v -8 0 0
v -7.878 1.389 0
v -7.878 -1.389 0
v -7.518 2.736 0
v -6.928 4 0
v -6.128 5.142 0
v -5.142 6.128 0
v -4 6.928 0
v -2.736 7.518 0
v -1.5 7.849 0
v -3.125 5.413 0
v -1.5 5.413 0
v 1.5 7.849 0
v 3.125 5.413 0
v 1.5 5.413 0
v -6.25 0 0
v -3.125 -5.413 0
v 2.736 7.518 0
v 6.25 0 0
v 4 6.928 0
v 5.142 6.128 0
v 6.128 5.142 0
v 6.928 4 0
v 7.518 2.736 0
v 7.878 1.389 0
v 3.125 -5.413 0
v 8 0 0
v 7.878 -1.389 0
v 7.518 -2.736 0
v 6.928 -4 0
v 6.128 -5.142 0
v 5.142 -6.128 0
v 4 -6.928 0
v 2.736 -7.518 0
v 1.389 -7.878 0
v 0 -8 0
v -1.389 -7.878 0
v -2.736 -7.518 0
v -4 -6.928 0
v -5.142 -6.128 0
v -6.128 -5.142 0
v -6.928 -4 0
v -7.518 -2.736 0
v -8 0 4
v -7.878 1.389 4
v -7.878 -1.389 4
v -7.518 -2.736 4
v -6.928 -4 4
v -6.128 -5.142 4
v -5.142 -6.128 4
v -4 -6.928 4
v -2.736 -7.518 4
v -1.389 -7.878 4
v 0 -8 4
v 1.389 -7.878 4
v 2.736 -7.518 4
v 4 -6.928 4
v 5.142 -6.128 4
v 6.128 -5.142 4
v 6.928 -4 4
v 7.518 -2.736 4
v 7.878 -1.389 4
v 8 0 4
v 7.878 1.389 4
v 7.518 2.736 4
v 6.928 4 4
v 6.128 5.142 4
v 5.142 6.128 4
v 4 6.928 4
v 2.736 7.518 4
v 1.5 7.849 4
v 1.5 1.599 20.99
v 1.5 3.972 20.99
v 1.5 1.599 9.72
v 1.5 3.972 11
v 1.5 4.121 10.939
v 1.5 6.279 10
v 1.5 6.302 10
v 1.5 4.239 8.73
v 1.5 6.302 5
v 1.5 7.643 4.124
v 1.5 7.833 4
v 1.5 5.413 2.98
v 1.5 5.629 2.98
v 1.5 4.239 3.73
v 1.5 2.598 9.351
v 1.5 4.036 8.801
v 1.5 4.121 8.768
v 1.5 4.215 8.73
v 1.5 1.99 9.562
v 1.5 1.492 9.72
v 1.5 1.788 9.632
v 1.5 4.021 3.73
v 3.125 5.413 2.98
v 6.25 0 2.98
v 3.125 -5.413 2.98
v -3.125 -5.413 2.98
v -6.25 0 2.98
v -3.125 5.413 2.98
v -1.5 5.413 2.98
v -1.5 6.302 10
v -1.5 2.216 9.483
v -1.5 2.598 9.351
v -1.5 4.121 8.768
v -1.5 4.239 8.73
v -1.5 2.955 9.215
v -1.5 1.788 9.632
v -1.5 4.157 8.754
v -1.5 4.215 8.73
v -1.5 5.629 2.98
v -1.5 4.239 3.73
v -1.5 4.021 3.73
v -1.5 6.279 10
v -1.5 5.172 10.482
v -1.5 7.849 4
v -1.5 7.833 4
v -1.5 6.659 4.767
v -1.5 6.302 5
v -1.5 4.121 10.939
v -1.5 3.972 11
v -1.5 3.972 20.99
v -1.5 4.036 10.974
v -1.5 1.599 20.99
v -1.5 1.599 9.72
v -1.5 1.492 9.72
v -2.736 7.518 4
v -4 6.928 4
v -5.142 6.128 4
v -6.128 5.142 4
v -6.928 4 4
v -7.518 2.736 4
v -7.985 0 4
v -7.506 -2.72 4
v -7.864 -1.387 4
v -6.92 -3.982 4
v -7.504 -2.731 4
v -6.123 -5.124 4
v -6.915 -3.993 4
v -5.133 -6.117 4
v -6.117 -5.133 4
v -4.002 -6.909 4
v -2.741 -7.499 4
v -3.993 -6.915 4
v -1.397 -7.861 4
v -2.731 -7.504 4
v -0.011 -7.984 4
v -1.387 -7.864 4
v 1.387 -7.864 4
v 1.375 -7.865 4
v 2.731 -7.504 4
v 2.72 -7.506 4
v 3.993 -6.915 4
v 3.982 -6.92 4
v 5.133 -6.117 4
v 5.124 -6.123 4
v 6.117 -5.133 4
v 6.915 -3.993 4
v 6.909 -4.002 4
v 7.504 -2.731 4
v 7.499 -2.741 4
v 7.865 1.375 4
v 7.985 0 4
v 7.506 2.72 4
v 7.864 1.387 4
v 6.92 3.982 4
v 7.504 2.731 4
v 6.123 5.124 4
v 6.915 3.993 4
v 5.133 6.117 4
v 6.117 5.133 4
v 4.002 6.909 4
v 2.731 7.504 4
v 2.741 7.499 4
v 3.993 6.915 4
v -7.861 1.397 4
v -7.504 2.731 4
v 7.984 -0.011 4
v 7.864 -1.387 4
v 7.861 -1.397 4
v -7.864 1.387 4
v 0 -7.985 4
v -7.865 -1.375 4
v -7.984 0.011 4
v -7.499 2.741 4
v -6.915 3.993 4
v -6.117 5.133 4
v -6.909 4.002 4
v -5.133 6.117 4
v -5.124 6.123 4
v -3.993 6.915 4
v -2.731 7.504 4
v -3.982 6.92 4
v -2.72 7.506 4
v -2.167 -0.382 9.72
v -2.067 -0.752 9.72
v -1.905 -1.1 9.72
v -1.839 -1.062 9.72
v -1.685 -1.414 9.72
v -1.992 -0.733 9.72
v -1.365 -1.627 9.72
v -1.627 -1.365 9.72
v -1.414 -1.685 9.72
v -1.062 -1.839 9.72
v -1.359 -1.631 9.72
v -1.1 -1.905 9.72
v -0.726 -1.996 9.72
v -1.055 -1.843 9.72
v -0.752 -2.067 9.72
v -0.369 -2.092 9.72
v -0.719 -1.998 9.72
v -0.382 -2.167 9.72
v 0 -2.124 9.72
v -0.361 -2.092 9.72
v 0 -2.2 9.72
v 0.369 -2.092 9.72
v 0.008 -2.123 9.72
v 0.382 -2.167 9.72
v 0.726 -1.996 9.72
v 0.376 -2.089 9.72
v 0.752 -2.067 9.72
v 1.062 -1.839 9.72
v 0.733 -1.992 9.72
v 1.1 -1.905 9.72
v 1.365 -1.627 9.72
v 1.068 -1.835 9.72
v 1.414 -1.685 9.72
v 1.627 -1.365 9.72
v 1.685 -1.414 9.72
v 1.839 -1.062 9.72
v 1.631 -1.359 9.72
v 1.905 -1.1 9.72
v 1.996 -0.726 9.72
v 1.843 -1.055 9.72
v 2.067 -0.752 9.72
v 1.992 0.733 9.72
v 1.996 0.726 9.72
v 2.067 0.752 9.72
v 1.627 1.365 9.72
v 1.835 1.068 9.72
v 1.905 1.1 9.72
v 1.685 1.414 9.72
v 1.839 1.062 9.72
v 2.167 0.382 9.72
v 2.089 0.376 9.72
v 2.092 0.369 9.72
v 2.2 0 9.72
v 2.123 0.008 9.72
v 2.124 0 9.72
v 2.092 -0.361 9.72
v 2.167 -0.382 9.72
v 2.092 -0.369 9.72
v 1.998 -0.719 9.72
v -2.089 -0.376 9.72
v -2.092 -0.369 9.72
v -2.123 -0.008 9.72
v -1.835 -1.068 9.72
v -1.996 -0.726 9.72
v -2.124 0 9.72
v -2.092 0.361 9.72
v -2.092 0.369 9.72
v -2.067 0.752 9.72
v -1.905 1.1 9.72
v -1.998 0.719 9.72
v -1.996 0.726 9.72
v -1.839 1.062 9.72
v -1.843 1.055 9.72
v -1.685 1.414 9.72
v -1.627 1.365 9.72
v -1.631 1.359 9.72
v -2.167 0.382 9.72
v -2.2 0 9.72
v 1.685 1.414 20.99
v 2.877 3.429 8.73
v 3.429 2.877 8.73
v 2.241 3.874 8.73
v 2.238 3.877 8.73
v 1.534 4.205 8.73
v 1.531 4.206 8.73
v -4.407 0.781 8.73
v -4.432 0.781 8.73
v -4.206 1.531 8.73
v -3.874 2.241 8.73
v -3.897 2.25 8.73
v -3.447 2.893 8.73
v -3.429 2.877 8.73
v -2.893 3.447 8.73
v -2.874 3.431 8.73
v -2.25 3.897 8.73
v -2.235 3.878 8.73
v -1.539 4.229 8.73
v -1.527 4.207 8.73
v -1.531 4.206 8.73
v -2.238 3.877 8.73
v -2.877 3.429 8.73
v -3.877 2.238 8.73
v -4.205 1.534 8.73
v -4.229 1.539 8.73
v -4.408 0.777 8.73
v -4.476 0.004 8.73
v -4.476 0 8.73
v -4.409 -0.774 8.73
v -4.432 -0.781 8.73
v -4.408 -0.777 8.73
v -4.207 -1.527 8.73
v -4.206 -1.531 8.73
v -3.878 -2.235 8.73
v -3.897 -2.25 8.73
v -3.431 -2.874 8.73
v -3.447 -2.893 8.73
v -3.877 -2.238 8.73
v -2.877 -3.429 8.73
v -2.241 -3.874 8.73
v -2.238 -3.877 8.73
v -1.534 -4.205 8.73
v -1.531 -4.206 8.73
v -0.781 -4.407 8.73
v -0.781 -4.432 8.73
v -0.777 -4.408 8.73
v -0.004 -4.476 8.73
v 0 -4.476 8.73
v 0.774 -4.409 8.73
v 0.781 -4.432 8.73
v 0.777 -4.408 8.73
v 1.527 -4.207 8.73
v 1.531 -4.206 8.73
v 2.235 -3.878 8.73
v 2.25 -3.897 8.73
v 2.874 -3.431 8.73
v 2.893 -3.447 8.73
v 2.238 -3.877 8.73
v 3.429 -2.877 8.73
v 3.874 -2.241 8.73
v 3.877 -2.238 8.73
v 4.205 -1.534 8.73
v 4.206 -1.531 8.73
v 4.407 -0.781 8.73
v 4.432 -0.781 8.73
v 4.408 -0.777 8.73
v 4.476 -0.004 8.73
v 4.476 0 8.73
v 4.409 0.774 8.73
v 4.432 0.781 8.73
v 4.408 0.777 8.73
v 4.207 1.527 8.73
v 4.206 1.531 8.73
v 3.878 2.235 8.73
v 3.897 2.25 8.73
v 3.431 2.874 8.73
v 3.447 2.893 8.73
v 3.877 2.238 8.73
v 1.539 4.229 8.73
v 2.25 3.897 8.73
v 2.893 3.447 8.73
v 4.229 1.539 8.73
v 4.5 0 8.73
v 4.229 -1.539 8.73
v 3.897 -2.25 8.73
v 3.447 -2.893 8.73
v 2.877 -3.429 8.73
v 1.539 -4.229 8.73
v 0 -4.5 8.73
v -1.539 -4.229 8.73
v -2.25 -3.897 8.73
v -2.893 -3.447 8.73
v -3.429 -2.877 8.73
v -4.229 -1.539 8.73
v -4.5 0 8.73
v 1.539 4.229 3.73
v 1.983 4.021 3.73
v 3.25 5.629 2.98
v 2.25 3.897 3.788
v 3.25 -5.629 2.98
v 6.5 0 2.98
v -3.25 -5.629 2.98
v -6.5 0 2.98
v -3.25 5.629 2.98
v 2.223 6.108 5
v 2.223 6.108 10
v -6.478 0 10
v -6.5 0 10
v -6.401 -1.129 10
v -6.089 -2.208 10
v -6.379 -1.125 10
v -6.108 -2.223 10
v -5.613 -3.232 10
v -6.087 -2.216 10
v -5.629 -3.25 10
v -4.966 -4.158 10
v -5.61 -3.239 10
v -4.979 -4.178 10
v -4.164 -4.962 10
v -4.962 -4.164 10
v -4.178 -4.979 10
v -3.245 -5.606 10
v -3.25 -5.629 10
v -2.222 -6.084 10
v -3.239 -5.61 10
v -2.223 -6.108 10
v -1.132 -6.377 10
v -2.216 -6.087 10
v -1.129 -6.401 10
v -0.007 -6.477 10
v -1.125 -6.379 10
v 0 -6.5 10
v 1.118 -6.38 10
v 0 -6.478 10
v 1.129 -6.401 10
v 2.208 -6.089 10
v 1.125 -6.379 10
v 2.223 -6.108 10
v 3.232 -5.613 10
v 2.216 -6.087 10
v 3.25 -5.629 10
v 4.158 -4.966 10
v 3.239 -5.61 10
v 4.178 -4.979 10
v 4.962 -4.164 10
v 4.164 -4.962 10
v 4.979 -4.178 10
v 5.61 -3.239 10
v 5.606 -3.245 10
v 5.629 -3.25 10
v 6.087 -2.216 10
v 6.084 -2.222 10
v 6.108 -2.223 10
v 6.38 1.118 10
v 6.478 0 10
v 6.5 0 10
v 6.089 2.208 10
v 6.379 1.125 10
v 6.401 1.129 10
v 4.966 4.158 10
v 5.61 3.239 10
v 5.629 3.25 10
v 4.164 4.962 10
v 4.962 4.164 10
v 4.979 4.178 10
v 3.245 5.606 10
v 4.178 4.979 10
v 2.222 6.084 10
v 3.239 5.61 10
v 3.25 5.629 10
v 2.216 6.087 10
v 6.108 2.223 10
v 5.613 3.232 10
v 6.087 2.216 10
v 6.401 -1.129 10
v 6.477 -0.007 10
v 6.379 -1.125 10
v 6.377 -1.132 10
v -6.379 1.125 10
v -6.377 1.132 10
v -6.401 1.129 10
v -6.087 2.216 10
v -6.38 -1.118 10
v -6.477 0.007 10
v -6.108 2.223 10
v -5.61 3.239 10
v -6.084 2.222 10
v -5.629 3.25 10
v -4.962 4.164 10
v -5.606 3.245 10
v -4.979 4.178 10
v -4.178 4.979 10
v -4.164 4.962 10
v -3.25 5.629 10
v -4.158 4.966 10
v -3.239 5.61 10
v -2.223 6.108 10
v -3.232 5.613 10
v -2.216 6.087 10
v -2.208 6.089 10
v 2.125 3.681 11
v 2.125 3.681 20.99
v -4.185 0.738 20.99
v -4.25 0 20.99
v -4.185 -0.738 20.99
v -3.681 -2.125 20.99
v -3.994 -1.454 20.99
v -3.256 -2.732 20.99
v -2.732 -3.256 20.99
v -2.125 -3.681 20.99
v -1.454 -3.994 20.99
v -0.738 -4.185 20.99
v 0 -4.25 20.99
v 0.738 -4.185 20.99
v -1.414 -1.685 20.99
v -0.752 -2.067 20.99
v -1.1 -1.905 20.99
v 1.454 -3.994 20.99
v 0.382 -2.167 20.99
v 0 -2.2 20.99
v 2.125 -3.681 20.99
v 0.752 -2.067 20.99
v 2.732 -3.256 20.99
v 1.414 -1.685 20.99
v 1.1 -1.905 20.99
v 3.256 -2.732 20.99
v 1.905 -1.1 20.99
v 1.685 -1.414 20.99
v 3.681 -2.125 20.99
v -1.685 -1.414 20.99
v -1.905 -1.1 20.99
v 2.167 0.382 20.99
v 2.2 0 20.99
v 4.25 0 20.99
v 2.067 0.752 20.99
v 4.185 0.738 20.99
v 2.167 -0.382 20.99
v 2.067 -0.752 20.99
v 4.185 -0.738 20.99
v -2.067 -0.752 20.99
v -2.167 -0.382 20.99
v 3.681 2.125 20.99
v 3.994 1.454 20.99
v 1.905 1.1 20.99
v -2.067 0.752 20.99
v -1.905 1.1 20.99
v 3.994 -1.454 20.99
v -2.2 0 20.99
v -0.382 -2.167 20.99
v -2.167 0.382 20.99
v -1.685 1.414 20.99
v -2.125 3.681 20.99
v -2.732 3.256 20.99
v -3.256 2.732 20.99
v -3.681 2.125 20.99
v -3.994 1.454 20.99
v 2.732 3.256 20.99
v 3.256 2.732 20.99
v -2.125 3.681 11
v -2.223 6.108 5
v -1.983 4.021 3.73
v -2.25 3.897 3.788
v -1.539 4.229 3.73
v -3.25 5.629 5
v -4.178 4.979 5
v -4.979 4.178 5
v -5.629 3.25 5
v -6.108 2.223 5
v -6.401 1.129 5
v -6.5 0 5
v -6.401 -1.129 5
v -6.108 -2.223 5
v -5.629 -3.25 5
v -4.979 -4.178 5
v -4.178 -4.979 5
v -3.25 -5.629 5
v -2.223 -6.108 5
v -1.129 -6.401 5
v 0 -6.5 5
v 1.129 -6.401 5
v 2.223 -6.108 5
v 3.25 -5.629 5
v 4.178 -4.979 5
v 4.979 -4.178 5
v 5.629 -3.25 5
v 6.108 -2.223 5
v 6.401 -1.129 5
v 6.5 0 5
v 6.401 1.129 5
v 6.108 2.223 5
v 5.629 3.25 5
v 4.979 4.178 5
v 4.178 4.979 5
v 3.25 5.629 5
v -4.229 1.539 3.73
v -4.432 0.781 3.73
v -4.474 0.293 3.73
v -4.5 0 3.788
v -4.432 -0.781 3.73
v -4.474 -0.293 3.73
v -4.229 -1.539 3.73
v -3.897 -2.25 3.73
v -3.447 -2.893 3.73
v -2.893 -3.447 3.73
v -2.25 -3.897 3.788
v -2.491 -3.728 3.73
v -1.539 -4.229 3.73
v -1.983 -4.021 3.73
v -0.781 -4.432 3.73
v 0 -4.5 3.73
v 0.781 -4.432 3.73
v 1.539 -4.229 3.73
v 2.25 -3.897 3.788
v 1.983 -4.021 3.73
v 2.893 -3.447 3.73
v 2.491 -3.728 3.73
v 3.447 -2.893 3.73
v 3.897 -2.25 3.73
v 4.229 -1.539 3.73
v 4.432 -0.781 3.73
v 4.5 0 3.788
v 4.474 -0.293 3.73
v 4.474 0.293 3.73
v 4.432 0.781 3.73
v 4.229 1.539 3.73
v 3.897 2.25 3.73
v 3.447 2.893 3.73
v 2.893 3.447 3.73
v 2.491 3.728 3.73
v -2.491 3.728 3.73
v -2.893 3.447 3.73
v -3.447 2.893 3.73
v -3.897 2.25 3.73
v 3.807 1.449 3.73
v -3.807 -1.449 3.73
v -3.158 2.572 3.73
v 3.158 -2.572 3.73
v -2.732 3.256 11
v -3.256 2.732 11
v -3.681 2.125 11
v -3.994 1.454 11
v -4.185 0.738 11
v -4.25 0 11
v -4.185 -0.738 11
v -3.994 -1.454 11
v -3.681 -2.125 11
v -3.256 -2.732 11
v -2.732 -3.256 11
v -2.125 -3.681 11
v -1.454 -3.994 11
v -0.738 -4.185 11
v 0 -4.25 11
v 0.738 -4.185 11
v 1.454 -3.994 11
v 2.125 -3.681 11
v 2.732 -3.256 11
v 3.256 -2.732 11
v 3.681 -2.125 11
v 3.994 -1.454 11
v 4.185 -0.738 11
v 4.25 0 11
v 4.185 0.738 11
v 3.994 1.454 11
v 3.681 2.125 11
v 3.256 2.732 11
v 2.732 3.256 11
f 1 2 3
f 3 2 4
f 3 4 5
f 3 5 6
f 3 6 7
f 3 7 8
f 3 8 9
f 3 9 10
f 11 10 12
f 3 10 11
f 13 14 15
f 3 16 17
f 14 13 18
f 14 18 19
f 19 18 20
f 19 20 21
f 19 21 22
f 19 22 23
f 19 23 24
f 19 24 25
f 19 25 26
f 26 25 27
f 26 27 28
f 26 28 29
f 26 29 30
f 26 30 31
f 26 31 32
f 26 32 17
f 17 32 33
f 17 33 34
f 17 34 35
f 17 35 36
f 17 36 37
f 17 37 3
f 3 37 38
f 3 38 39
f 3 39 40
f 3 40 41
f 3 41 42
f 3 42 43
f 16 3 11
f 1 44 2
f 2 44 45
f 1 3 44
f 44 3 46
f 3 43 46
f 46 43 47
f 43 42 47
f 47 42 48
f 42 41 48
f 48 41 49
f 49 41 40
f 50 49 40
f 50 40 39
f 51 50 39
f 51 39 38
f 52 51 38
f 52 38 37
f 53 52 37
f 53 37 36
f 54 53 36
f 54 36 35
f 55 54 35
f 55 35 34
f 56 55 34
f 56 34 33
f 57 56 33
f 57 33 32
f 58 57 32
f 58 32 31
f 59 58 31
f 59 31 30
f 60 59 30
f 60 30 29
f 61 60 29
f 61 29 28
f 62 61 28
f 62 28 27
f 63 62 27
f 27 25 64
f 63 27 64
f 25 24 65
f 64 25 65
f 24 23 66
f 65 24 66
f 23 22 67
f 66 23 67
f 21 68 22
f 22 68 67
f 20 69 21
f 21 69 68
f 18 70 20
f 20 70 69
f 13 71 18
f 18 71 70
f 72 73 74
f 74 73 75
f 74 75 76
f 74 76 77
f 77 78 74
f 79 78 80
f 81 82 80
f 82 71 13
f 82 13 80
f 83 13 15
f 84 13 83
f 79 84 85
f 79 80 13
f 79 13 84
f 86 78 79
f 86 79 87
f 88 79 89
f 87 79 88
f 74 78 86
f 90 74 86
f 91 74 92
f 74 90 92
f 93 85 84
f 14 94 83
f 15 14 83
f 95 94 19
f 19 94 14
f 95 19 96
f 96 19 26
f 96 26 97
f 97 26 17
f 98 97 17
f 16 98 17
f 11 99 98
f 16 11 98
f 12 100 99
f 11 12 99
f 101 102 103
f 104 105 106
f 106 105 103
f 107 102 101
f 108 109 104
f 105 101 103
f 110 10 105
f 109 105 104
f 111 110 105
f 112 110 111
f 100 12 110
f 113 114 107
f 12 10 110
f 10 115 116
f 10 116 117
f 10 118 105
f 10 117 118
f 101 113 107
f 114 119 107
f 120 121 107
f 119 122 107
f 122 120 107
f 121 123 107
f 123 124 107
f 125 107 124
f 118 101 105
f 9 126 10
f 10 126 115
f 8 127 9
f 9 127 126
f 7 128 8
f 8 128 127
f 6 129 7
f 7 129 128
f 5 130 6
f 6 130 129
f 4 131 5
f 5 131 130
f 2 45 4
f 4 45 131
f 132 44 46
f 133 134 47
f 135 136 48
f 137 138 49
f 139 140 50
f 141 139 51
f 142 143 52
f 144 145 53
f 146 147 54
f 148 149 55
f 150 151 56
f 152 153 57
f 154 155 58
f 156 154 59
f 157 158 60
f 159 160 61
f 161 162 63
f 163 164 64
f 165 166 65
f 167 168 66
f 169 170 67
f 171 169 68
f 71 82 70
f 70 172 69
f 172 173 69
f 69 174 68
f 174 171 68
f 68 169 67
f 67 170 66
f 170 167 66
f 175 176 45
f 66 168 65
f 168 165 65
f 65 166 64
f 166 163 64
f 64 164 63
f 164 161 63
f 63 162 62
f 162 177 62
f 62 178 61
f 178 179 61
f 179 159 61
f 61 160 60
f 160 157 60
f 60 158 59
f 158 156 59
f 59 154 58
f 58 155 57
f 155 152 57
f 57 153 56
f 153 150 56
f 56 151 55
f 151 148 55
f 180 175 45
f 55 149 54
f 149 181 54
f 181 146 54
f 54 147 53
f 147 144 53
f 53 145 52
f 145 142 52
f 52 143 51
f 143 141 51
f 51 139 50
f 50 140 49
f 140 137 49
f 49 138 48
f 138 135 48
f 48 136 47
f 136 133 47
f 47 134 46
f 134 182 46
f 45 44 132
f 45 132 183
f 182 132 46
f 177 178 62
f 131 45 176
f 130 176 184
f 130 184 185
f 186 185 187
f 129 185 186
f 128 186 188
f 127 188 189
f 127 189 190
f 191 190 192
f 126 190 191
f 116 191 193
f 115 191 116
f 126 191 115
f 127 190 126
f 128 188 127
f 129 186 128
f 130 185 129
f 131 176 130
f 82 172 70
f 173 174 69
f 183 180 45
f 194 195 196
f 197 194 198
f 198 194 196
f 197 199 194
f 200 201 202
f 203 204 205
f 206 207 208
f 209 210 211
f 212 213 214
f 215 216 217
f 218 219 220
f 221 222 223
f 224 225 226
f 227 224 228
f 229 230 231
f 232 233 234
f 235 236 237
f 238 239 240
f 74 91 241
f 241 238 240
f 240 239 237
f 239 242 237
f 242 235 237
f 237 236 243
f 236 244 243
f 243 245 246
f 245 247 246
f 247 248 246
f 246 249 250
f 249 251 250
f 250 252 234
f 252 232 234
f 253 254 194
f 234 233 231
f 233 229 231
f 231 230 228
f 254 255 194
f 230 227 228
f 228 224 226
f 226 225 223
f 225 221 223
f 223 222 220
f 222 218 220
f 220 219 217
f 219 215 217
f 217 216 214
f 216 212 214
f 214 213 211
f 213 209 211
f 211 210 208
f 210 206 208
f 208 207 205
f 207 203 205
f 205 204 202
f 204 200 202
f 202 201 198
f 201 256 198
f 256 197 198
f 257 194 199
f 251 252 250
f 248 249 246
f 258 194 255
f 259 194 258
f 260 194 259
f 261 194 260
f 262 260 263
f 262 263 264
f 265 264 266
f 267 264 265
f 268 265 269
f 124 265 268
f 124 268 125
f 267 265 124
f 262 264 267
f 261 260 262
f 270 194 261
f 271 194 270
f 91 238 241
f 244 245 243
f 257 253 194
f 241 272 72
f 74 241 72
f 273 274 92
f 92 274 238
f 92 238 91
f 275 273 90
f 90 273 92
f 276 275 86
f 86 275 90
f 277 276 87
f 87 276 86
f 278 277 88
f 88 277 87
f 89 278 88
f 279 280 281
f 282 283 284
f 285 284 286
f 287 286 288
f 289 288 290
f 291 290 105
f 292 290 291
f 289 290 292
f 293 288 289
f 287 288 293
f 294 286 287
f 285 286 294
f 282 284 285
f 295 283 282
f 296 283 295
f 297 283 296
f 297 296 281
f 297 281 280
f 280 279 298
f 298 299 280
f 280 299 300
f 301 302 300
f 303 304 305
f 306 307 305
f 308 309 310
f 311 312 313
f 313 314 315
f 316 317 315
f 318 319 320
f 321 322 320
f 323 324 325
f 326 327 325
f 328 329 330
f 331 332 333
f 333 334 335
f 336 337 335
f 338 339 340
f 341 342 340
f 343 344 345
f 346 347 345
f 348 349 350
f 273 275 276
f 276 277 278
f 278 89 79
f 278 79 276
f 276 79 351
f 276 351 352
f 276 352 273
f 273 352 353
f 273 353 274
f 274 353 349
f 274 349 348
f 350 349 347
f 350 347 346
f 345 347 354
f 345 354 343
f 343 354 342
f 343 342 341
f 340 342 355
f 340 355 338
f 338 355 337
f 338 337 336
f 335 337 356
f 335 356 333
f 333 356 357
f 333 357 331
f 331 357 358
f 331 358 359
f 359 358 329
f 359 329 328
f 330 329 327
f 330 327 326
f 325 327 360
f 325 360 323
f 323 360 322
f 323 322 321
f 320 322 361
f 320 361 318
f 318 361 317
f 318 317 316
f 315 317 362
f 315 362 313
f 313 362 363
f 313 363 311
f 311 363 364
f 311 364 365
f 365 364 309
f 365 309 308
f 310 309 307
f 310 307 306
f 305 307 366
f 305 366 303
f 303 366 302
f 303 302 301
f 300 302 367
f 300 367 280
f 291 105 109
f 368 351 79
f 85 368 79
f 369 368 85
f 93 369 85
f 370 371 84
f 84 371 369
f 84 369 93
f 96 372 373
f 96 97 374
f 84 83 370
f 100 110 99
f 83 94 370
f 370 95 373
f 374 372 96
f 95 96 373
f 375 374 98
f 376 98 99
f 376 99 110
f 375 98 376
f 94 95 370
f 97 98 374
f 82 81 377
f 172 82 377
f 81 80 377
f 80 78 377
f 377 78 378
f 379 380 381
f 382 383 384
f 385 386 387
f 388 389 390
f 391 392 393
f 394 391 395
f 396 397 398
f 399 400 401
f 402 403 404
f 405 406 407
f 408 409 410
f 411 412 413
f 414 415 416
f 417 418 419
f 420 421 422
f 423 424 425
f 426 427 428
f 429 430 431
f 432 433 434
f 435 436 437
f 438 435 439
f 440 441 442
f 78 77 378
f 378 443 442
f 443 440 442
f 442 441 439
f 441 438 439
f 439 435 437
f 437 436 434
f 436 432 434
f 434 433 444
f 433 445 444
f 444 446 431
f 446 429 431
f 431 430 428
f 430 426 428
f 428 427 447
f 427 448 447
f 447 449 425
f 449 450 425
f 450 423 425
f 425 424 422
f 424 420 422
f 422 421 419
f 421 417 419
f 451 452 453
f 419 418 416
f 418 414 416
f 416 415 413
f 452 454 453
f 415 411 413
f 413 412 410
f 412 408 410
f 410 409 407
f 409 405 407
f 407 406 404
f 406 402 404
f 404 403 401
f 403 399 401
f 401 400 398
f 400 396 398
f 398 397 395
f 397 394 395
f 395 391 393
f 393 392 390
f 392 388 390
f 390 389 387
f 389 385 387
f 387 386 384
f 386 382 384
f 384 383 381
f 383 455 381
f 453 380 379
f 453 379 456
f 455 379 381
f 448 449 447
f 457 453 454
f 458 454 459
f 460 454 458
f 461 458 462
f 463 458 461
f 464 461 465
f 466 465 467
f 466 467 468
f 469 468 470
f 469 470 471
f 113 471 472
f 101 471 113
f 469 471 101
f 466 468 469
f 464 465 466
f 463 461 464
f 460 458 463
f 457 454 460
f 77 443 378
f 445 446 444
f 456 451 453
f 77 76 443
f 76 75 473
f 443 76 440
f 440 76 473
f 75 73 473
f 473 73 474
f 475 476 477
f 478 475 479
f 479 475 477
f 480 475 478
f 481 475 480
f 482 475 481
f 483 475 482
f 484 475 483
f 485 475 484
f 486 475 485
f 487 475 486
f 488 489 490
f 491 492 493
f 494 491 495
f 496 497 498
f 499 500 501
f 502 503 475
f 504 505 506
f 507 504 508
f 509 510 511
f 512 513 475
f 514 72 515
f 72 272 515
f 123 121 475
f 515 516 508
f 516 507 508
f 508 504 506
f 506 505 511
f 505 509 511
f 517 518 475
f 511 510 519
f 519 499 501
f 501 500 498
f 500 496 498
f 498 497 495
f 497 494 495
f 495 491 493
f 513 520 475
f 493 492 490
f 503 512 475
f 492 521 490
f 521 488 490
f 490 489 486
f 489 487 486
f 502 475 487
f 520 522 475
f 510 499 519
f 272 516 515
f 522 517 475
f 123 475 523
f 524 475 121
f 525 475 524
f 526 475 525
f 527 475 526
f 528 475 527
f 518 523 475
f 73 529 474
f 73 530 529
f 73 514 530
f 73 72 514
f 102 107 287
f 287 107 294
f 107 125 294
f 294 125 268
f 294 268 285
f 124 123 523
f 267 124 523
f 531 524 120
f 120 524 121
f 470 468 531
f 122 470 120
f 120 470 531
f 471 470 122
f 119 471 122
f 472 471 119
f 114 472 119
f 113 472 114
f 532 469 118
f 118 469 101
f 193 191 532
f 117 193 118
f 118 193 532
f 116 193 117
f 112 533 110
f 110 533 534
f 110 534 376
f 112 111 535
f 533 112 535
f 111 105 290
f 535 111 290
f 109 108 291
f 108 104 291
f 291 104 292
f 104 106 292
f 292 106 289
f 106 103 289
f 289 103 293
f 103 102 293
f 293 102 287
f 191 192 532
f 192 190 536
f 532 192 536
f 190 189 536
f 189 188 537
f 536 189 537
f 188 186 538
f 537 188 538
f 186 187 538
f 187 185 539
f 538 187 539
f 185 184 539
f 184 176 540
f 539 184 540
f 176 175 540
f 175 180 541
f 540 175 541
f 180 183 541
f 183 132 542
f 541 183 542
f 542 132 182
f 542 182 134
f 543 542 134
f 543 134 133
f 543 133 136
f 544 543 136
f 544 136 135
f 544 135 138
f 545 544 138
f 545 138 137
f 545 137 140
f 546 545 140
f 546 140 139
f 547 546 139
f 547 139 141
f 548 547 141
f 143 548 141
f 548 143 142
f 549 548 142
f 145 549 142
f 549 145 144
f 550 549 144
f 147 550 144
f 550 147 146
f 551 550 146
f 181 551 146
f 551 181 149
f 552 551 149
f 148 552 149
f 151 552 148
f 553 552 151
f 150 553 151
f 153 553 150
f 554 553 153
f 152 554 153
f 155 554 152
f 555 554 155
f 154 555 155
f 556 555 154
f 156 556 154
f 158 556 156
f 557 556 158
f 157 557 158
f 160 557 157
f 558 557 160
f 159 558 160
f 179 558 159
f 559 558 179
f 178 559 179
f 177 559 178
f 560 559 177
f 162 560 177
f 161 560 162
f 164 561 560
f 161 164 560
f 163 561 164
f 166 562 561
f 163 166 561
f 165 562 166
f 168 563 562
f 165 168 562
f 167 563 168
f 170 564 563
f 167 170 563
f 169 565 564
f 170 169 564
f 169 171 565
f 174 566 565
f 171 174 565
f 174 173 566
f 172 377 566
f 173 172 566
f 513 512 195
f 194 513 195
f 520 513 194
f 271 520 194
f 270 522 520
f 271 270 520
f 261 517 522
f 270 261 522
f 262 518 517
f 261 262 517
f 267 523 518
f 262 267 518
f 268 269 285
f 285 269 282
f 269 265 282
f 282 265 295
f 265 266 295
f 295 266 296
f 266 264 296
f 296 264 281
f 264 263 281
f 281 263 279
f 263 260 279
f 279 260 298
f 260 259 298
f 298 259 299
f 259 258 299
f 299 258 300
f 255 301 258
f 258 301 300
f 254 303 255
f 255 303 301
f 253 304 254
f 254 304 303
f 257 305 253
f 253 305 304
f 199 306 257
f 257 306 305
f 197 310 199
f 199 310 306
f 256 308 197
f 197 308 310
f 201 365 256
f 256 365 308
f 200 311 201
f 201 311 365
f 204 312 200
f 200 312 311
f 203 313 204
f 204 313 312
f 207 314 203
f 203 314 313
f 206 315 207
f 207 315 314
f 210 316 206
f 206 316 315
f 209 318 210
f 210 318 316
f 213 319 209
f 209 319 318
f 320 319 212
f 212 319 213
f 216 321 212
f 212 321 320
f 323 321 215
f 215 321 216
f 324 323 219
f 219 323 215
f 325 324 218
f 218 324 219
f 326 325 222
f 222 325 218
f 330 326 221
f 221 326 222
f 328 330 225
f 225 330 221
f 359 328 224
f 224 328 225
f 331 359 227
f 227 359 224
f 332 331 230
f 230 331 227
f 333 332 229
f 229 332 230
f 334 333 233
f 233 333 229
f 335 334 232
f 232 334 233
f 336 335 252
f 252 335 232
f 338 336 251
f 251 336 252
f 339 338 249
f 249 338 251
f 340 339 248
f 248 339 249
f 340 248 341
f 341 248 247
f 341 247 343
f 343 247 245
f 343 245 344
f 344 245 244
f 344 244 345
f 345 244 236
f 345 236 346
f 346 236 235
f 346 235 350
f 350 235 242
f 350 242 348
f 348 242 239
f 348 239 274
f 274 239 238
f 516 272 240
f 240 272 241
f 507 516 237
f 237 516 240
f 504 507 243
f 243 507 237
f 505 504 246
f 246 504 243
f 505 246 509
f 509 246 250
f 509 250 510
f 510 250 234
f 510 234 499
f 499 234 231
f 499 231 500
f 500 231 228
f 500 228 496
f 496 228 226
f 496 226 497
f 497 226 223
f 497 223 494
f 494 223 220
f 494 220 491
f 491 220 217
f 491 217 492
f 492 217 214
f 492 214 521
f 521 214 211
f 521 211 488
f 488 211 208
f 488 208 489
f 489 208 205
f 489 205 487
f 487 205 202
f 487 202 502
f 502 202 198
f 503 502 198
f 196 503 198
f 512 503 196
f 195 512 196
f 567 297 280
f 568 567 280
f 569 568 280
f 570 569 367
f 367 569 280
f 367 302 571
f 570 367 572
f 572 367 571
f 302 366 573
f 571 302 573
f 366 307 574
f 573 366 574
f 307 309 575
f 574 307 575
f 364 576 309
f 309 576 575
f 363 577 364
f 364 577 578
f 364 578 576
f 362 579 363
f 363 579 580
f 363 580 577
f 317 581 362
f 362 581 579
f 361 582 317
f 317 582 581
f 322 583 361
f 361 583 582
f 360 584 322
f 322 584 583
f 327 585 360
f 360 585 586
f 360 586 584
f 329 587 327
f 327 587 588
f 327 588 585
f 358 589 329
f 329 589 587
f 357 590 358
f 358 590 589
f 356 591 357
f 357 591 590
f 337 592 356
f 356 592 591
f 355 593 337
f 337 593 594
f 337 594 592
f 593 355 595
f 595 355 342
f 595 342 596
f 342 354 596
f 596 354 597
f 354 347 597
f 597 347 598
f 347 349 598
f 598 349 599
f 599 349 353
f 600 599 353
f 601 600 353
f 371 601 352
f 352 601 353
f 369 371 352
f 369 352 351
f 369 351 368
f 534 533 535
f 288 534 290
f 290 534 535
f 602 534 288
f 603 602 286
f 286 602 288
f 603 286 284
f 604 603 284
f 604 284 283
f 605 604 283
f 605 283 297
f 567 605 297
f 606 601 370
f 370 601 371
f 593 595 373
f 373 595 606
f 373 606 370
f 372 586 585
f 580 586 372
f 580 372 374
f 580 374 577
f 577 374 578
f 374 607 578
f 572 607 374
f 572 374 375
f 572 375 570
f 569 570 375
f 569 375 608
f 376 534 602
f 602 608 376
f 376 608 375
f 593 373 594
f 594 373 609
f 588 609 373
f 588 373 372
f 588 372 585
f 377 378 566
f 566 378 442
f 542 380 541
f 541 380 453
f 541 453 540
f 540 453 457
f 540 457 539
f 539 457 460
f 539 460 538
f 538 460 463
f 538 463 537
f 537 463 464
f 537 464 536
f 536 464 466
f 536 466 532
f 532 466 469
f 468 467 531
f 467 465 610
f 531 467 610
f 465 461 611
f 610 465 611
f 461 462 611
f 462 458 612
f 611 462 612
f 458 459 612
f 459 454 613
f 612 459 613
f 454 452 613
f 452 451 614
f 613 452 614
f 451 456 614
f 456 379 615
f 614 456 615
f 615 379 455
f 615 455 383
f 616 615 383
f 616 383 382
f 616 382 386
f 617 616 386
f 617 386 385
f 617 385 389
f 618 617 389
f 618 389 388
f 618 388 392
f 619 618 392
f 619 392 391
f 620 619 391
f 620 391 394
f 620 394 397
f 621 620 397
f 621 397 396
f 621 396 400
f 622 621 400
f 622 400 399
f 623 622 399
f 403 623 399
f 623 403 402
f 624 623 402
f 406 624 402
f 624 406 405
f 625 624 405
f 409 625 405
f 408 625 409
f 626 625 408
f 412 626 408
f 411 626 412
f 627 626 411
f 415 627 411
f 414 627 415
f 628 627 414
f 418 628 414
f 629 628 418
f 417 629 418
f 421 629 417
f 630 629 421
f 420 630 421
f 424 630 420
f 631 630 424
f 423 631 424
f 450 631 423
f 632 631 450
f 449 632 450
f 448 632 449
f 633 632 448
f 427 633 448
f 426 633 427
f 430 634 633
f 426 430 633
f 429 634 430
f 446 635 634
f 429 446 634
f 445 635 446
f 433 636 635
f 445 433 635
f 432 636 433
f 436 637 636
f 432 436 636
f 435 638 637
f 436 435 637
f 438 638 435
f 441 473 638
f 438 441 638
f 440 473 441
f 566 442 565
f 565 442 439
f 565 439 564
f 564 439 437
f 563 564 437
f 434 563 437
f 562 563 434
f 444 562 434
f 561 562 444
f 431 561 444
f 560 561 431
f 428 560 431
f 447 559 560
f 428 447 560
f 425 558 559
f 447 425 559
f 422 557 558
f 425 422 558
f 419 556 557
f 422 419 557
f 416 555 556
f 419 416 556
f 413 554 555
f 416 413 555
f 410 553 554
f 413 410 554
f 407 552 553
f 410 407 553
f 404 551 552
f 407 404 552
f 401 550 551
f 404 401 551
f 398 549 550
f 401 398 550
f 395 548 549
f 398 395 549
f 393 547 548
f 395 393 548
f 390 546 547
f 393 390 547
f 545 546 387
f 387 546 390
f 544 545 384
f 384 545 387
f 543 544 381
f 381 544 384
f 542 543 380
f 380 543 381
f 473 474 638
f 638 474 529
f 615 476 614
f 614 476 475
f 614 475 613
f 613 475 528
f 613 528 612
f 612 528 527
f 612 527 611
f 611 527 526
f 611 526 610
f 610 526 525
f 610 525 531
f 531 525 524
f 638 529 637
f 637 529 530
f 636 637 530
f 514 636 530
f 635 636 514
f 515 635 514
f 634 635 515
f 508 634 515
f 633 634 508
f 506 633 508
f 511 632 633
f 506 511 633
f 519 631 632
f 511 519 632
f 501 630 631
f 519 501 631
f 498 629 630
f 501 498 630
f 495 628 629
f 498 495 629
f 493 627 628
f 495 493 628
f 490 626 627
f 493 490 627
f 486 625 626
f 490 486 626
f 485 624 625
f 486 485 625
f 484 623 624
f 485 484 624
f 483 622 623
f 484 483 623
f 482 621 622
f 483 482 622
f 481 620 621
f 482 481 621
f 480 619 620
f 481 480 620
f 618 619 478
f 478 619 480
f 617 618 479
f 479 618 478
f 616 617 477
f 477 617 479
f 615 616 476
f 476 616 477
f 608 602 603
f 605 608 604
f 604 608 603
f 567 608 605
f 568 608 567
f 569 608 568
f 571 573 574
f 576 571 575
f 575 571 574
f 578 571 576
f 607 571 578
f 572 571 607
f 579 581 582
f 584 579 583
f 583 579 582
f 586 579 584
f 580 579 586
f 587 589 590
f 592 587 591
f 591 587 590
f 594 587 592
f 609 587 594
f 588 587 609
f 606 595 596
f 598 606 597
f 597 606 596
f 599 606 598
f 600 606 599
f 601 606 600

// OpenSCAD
//just a stack of cylinders, to hold my bowden tube in place vertically.

$fn=36;
difference(){
	
	union(){
		cylinder(r=8, h=4);
		translate([0,0,3.99]) cylinder(r1=8, r2=6.5, h=1.01);
		translate([0,0,4.99]) cylinder(r=6.5, h=5.01);
		translate([0,0,9.99]) cylinder(r1=6.5, r2=4.25, h=1.01);
		translate([0,0,10.99]) cylinder(r=4.25, h=10);
	}

	translate([0,0,-.01])
	union(){
		cylinder(r=12.5/2, h=3, $fn=6);
		translate([0,0,2.99]) cylinder(r1=13/2, r2=4, h=1.01, $fn=6);
		translate([0,0,3.74]) cylinder(r=9/2, h=5);
		translate([0,0,8.73]) cylinder(r1=9/2, r2=2.1, h=1.01);
		translate([0,0,9.73]) cylinder(r=2.2, h=15);
	}

	translate([0,5, 10.01]) cube([3,10,30],center=true);
}
